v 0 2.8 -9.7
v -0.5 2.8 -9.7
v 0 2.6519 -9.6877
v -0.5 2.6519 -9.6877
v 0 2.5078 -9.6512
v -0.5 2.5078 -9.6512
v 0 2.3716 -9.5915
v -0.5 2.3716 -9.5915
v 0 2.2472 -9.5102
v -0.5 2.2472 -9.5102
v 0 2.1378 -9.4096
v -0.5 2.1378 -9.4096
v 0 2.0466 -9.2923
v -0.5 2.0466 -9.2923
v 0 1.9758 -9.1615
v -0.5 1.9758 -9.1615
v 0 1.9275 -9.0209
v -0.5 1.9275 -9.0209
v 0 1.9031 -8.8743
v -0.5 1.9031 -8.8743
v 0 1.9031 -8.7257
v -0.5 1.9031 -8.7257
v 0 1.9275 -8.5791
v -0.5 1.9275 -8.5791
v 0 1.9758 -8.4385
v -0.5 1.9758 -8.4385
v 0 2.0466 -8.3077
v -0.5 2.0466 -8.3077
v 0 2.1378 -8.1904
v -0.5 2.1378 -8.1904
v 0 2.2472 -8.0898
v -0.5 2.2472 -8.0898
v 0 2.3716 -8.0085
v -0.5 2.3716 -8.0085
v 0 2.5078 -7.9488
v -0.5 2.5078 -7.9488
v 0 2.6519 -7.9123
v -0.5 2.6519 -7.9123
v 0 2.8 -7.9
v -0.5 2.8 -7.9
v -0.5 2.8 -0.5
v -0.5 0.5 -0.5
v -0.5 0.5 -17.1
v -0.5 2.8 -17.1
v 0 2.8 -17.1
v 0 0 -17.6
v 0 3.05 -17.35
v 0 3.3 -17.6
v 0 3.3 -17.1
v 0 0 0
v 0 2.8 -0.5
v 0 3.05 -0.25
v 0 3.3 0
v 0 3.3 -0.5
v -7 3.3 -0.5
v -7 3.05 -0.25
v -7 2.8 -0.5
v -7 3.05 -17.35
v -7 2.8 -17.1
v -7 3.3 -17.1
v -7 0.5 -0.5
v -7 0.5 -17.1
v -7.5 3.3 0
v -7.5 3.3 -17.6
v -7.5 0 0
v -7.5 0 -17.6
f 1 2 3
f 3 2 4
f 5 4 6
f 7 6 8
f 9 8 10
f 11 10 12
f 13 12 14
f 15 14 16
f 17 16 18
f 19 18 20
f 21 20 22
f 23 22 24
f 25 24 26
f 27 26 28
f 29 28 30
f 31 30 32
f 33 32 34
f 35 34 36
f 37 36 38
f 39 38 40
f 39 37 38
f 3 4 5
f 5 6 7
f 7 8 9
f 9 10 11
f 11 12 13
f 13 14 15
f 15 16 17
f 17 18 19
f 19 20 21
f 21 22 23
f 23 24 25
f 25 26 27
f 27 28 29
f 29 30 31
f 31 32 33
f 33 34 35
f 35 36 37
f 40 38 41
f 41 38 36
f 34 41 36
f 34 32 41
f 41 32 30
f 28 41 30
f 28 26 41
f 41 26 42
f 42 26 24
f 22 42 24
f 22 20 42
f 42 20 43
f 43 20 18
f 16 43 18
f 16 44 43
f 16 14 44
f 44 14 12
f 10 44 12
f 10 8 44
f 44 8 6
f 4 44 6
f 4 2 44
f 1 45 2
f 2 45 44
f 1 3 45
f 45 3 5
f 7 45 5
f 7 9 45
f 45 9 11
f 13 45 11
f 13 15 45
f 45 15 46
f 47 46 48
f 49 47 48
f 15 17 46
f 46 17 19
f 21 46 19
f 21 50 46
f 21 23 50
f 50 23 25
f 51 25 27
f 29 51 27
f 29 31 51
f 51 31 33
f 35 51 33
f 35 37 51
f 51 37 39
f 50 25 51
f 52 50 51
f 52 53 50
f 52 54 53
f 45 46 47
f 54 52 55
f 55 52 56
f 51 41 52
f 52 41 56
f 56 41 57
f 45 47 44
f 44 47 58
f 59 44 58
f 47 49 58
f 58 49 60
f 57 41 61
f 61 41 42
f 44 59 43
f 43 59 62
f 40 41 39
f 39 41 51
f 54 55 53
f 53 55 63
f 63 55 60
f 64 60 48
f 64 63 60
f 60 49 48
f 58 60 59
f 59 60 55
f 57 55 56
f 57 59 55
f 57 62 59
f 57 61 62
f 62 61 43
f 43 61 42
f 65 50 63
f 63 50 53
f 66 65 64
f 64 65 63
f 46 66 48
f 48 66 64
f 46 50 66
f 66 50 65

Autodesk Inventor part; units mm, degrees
ref_plane "YZ Plane" through (0, 0, 0) normal (1, 0, 0) x (0, 1, 0)
ref_plane "XZ Plane" through (0, 0, 0) normal (0, 1, 0) x (-1, 0, 0)
ref_plane "XY Plane" through (0, 0, 0) normal (0, 0, 1) x (1, 0, 0)
sketch "Boceto1" plane through (0, 0, 0) normal (0, 1, 0) x (-1, 0, 0)
  line L0 (0, 0) -> (0, -17.6)
  line L1 (0, -17.6) -> (7.5, -17.6)
  line L2 (7.5, -17.6) -> (7.5, 0)
  line L3 (7.5, 0) -> (0, 0)
  dimension "d0" = 17.6
  dimension "d1" = 7.5
extrude "Extrusión1" add sketch "Boceto1" along normal blind 3.3
sketch "Boceto2" plane through (0, 3.3, 0) normal (0, 1, 0) x (1, 0, 0)
  line L0 (0, 0) -> (0, 17.6) projected
  line L1 (0, 17.6) -> (-7.5, 17.6) projected
  line L2 (-7.5, 17.6) -> (-7.5, 0) projected
  line L3 (-7.5, 0) -> (0, 0) projected
  line L4 (-7, 0.5) -> (-7, 17.1)
  line L5 (-7, 17.1) -> (-0.5, 17.1)
  line L6 (-0.5, 17.1) -> (-0.5, 0.5)
  line L7 (-0.5, 0.5) -> (-7, 0.5)
  dimension "d4" = 0.5
extrude "Extrusión2" cut sketch "Boceto2" against normal blind 2.8 contours L4 L5 L6 L7
sketch "Boceto3" plane through (0, 3.3, 0) normal (0, 1, 0) x (1, 0, 0)
  line L0 (-0.5, 17.1) -> (-0.5, 0.5) projected
  line L1 (-0.5, 0.5) -> (0, 0.5)
  line L2 (0, 0.5) -> (0, 17.1)
  line L3 (0, 0) -> (0, 17.6) projected
  line L4 (-0.5, 17.1) -> (-0.5, 0.5) projected
  line L5 (-0.5, 17.1) -> (-0.5, 0.5)
  line L6 (-0.5, 0.5) -> (-0.5, 17.1)
  line L7 (-0.5, 17.1) -> (0, 17.1)
extrude "Extrusión3" cut sketch "Boceto3" against normal blind 0.5
sketch "Boceto4" plane through (0, 0, 0) normal (1, 0, 0) x (0, 0, -1)
  line L0 (0.5, 2.8) -> (0.5, 3.3) projected
  line L1 (0, 3.3) -> (0.5, 3.3) projected
  line L2 (0, 0) -> (0, 3.3) projected
  line L3 (0, 0) -> (17.6, 0) projected
  line L4 (17.6, 0) -> (17.6, 3.3) projected
  line L5 (17.1, 3.3) -> (17.6, 3.3) projected
  line L6 (17.1, 3.3) -> (17.1, 2.8) projected
  line L7 (17.1, 2.8) -> (0.5, 2.8) projected
  line L8 (0.5, 3.3) -> (0.5, 0.5) projected
  line L9 (0.5, 2.8) -> (0.5, 3.3)
  line L10 (0.5, 3.3) -> (0.5, 3.05)
  line L11 (0.5, 2.8) -> (0.25, 3.05)
  line L12 (0.5, 3.3) -> (0.25, 3.05)
  line L13 (17.1, 3.3) -> (17.1, 2.8)
  line L14 (17.1, 3.3) -> (17.6, 3.3) projected
  line L15 (17.1, 3.3) -> (17.35, 3.05)
  line L16 (17.35, 3.05) -> (17.1, 2.8)
extrude "Extrusión4" cut sketch "Boceto4" against normal blind 7 contours L11 L12 L0 | L6 L15 L16
sketch "Boceto5" plane through (0, 0, 0) normal (1, 0, 0) x (0, 0, -1)
  line L0 (0.5, 2.8) -> (17.1, 2.8) projected
  circle A0 centre (8.8, 2.8) radius 0.9
  line L1 (7.9, 2.8) -> (9.7, 2.8)
  point P0 (0, 0)
  dimension "d11" = 1.8
extrude "Extrusión5" cut sketch "Boceto5" against normal blind 5 contours L0 A0 picked at (8.728, 2.3801)
